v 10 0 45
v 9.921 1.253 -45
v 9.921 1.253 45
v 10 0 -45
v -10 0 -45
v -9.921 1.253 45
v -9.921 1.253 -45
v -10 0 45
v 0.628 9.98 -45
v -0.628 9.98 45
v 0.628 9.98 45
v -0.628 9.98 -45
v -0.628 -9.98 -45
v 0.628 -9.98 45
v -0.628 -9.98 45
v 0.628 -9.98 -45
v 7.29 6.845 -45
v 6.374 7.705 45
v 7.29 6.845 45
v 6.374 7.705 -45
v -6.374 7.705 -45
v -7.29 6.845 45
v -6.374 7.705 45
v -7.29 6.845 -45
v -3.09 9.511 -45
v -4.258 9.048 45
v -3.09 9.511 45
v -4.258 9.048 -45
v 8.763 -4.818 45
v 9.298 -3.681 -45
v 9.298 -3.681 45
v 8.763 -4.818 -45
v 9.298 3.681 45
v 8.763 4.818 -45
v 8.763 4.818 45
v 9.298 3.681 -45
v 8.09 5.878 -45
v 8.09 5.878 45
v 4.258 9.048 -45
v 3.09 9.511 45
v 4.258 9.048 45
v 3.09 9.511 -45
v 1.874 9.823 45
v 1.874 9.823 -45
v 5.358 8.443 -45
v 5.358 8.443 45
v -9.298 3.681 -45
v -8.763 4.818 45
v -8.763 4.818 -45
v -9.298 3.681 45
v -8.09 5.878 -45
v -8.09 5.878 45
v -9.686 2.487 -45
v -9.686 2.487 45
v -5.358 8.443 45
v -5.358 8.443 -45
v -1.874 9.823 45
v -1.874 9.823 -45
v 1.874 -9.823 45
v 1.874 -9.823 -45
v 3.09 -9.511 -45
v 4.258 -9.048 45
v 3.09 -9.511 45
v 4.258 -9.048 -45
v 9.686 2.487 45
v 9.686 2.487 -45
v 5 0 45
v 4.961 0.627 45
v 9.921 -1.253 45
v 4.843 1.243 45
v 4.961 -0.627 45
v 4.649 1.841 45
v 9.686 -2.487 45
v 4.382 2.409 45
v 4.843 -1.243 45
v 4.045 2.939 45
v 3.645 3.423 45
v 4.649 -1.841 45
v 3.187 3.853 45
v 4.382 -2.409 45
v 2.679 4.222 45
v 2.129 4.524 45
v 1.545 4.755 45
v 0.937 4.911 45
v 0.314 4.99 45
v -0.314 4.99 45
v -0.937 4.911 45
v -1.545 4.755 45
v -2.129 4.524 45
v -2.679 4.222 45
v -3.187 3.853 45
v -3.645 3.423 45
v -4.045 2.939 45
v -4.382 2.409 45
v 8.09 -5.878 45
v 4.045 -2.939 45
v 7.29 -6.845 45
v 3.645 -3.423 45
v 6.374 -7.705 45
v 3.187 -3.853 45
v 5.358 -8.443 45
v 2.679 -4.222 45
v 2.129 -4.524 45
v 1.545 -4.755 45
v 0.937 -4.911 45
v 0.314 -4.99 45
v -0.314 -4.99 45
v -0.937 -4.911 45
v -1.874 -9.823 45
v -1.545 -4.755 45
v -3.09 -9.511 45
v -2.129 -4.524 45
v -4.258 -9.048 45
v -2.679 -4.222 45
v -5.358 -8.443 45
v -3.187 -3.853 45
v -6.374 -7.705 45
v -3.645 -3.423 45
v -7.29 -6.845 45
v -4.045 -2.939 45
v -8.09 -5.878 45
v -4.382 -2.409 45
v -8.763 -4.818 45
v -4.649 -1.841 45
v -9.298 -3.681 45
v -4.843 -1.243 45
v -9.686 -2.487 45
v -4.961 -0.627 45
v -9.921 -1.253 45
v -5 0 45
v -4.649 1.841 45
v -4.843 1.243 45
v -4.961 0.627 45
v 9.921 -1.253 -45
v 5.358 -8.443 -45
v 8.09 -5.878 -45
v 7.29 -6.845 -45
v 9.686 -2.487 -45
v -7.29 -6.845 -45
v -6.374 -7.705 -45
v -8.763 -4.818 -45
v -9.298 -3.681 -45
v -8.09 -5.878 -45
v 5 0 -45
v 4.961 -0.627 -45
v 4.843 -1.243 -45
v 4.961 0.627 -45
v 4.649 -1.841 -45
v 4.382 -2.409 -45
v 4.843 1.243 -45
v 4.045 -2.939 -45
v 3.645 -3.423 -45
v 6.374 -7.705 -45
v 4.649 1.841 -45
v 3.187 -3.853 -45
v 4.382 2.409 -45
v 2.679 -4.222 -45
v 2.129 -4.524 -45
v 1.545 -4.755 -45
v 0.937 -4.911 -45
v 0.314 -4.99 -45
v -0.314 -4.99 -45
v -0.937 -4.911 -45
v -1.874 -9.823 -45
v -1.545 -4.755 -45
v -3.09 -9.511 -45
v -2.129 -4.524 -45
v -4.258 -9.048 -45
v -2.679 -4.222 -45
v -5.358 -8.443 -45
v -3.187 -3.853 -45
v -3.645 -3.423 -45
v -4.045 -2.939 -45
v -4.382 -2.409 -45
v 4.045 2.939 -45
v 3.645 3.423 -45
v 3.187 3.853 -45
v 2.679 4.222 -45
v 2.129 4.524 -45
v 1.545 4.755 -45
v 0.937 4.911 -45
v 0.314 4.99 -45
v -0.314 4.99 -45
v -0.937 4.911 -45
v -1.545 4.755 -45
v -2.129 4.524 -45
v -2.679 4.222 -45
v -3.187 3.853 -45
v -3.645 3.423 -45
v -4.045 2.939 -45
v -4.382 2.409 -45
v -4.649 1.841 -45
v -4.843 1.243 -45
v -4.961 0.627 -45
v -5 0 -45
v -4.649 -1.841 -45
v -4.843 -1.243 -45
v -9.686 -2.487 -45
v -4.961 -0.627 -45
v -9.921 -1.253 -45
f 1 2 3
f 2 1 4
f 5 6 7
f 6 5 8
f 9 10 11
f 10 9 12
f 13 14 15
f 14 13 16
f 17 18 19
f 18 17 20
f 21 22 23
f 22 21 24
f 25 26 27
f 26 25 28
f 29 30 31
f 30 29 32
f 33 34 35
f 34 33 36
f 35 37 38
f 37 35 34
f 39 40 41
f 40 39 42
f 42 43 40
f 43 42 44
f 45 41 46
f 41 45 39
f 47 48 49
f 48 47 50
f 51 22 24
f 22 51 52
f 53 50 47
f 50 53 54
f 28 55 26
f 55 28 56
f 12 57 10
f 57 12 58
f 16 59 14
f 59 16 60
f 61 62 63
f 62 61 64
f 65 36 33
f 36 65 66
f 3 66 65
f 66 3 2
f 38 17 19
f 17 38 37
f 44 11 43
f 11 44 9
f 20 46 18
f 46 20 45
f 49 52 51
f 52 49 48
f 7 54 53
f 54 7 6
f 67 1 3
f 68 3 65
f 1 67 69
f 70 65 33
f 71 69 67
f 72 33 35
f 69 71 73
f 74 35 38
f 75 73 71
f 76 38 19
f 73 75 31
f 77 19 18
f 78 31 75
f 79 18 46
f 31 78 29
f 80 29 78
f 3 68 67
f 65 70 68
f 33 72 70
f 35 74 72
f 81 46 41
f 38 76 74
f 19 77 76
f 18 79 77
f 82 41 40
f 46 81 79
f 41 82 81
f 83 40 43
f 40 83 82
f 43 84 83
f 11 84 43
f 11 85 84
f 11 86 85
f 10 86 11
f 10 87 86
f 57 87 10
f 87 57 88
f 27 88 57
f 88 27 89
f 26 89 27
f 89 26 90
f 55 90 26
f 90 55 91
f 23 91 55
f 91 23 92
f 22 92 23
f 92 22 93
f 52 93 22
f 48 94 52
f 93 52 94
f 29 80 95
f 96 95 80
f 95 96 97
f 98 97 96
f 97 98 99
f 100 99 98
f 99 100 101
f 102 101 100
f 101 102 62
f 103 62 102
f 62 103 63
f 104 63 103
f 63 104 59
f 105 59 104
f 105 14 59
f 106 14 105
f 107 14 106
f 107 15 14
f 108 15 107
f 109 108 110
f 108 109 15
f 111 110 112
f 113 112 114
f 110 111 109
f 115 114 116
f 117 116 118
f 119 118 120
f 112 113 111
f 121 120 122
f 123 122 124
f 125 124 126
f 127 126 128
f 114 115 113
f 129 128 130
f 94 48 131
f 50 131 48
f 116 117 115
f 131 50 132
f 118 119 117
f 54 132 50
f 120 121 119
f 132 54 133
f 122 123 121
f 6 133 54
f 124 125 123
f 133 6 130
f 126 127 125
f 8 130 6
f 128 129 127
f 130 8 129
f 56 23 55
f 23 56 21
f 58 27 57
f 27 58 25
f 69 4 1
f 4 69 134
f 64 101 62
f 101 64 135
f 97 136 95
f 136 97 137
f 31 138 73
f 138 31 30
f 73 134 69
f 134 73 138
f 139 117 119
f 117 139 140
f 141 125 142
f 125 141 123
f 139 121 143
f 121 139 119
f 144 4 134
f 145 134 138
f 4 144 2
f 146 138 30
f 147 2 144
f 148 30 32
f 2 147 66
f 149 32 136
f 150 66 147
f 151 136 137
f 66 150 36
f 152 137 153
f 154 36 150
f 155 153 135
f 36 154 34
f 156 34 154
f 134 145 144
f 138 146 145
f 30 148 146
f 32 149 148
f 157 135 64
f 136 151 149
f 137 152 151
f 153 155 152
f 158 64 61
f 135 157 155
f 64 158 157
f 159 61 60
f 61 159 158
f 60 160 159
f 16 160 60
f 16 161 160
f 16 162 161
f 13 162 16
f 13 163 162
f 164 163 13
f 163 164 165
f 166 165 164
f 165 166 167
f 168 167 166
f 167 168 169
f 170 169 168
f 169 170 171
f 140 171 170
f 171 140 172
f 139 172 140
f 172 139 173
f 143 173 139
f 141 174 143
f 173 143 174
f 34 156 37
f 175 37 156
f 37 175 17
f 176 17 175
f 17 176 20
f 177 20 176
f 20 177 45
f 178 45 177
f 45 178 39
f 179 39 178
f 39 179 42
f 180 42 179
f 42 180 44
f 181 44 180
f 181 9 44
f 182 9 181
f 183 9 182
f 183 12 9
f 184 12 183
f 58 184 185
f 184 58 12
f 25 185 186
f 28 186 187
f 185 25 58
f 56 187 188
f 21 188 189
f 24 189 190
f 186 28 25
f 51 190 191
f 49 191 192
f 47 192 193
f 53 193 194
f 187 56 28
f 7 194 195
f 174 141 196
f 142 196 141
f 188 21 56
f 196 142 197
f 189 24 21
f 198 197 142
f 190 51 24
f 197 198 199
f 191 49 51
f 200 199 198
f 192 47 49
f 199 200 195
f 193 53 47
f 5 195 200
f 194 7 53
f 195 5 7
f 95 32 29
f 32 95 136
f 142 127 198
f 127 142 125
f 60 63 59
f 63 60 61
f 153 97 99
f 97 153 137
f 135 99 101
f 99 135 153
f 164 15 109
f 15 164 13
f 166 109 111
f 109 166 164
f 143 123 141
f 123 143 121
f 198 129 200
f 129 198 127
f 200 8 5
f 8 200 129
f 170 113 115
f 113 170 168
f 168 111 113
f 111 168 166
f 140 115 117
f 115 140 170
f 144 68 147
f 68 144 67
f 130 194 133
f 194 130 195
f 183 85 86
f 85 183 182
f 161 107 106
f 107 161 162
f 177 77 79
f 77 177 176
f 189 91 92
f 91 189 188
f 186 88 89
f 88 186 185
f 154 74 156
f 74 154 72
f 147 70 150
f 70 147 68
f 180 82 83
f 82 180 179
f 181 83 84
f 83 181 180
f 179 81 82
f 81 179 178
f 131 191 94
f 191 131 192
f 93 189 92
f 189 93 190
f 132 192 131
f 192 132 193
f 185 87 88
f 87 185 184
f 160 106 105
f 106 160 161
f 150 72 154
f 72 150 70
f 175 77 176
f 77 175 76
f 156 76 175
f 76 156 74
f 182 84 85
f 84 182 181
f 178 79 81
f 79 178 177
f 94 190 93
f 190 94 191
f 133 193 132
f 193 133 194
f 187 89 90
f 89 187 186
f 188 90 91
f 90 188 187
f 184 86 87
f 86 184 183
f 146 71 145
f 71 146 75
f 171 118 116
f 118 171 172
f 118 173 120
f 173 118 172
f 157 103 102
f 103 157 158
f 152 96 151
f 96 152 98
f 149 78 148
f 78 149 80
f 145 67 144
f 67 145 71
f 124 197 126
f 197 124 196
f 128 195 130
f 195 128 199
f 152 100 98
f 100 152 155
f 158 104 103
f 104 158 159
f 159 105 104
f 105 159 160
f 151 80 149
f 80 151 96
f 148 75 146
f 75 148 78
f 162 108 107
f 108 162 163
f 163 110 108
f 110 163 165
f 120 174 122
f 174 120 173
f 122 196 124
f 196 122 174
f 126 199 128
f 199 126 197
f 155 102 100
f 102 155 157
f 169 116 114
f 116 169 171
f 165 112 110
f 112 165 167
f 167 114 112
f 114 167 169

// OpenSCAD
$fn = 50;


difference() {
	union() {
		translate(v = [0, 0, -45.0000000000]) {
			cylinder(h = 90, r = 10.0000000000);
		}
	}
	union() {
		translate(v = [0, 0, -100.0000000000]) {
			cylinder(h = 200, r = 5.0000000000);
		}
	}
}
